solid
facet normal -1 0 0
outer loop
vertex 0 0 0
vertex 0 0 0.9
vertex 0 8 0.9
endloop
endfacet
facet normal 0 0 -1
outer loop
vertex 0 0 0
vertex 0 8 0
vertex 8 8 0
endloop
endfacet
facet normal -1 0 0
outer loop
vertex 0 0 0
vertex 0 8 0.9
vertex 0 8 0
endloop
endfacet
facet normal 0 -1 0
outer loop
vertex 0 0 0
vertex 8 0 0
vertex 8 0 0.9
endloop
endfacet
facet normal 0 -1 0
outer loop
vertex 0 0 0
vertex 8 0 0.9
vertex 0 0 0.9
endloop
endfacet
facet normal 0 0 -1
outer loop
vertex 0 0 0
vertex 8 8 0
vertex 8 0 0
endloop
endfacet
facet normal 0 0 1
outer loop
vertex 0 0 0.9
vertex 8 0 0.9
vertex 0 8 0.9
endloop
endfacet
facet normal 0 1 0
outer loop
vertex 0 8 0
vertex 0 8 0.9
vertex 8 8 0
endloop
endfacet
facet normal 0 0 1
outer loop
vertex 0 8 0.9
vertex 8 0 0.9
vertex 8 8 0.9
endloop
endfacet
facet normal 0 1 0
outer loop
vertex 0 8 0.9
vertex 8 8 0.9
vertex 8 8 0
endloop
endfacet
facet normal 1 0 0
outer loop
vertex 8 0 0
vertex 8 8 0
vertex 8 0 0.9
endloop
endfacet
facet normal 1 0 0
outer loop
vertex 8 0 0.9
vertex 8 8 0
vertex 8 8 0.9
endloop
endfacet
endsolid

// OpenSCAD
/* Warning, this is a very basic generator with a lot of approximation 
input data : [VQFN, Q6A, 8x8x0.9mm, 64, , B, C04-01129B]
generated by com.zoubworld.electronics.cad.model3d.Basic
Date : Sun Feb 15 10:50:49 CET 2026
*/

//body
color("black")
translate([0,0,0])
cube([8.0,8.0,0.9], center=false);
